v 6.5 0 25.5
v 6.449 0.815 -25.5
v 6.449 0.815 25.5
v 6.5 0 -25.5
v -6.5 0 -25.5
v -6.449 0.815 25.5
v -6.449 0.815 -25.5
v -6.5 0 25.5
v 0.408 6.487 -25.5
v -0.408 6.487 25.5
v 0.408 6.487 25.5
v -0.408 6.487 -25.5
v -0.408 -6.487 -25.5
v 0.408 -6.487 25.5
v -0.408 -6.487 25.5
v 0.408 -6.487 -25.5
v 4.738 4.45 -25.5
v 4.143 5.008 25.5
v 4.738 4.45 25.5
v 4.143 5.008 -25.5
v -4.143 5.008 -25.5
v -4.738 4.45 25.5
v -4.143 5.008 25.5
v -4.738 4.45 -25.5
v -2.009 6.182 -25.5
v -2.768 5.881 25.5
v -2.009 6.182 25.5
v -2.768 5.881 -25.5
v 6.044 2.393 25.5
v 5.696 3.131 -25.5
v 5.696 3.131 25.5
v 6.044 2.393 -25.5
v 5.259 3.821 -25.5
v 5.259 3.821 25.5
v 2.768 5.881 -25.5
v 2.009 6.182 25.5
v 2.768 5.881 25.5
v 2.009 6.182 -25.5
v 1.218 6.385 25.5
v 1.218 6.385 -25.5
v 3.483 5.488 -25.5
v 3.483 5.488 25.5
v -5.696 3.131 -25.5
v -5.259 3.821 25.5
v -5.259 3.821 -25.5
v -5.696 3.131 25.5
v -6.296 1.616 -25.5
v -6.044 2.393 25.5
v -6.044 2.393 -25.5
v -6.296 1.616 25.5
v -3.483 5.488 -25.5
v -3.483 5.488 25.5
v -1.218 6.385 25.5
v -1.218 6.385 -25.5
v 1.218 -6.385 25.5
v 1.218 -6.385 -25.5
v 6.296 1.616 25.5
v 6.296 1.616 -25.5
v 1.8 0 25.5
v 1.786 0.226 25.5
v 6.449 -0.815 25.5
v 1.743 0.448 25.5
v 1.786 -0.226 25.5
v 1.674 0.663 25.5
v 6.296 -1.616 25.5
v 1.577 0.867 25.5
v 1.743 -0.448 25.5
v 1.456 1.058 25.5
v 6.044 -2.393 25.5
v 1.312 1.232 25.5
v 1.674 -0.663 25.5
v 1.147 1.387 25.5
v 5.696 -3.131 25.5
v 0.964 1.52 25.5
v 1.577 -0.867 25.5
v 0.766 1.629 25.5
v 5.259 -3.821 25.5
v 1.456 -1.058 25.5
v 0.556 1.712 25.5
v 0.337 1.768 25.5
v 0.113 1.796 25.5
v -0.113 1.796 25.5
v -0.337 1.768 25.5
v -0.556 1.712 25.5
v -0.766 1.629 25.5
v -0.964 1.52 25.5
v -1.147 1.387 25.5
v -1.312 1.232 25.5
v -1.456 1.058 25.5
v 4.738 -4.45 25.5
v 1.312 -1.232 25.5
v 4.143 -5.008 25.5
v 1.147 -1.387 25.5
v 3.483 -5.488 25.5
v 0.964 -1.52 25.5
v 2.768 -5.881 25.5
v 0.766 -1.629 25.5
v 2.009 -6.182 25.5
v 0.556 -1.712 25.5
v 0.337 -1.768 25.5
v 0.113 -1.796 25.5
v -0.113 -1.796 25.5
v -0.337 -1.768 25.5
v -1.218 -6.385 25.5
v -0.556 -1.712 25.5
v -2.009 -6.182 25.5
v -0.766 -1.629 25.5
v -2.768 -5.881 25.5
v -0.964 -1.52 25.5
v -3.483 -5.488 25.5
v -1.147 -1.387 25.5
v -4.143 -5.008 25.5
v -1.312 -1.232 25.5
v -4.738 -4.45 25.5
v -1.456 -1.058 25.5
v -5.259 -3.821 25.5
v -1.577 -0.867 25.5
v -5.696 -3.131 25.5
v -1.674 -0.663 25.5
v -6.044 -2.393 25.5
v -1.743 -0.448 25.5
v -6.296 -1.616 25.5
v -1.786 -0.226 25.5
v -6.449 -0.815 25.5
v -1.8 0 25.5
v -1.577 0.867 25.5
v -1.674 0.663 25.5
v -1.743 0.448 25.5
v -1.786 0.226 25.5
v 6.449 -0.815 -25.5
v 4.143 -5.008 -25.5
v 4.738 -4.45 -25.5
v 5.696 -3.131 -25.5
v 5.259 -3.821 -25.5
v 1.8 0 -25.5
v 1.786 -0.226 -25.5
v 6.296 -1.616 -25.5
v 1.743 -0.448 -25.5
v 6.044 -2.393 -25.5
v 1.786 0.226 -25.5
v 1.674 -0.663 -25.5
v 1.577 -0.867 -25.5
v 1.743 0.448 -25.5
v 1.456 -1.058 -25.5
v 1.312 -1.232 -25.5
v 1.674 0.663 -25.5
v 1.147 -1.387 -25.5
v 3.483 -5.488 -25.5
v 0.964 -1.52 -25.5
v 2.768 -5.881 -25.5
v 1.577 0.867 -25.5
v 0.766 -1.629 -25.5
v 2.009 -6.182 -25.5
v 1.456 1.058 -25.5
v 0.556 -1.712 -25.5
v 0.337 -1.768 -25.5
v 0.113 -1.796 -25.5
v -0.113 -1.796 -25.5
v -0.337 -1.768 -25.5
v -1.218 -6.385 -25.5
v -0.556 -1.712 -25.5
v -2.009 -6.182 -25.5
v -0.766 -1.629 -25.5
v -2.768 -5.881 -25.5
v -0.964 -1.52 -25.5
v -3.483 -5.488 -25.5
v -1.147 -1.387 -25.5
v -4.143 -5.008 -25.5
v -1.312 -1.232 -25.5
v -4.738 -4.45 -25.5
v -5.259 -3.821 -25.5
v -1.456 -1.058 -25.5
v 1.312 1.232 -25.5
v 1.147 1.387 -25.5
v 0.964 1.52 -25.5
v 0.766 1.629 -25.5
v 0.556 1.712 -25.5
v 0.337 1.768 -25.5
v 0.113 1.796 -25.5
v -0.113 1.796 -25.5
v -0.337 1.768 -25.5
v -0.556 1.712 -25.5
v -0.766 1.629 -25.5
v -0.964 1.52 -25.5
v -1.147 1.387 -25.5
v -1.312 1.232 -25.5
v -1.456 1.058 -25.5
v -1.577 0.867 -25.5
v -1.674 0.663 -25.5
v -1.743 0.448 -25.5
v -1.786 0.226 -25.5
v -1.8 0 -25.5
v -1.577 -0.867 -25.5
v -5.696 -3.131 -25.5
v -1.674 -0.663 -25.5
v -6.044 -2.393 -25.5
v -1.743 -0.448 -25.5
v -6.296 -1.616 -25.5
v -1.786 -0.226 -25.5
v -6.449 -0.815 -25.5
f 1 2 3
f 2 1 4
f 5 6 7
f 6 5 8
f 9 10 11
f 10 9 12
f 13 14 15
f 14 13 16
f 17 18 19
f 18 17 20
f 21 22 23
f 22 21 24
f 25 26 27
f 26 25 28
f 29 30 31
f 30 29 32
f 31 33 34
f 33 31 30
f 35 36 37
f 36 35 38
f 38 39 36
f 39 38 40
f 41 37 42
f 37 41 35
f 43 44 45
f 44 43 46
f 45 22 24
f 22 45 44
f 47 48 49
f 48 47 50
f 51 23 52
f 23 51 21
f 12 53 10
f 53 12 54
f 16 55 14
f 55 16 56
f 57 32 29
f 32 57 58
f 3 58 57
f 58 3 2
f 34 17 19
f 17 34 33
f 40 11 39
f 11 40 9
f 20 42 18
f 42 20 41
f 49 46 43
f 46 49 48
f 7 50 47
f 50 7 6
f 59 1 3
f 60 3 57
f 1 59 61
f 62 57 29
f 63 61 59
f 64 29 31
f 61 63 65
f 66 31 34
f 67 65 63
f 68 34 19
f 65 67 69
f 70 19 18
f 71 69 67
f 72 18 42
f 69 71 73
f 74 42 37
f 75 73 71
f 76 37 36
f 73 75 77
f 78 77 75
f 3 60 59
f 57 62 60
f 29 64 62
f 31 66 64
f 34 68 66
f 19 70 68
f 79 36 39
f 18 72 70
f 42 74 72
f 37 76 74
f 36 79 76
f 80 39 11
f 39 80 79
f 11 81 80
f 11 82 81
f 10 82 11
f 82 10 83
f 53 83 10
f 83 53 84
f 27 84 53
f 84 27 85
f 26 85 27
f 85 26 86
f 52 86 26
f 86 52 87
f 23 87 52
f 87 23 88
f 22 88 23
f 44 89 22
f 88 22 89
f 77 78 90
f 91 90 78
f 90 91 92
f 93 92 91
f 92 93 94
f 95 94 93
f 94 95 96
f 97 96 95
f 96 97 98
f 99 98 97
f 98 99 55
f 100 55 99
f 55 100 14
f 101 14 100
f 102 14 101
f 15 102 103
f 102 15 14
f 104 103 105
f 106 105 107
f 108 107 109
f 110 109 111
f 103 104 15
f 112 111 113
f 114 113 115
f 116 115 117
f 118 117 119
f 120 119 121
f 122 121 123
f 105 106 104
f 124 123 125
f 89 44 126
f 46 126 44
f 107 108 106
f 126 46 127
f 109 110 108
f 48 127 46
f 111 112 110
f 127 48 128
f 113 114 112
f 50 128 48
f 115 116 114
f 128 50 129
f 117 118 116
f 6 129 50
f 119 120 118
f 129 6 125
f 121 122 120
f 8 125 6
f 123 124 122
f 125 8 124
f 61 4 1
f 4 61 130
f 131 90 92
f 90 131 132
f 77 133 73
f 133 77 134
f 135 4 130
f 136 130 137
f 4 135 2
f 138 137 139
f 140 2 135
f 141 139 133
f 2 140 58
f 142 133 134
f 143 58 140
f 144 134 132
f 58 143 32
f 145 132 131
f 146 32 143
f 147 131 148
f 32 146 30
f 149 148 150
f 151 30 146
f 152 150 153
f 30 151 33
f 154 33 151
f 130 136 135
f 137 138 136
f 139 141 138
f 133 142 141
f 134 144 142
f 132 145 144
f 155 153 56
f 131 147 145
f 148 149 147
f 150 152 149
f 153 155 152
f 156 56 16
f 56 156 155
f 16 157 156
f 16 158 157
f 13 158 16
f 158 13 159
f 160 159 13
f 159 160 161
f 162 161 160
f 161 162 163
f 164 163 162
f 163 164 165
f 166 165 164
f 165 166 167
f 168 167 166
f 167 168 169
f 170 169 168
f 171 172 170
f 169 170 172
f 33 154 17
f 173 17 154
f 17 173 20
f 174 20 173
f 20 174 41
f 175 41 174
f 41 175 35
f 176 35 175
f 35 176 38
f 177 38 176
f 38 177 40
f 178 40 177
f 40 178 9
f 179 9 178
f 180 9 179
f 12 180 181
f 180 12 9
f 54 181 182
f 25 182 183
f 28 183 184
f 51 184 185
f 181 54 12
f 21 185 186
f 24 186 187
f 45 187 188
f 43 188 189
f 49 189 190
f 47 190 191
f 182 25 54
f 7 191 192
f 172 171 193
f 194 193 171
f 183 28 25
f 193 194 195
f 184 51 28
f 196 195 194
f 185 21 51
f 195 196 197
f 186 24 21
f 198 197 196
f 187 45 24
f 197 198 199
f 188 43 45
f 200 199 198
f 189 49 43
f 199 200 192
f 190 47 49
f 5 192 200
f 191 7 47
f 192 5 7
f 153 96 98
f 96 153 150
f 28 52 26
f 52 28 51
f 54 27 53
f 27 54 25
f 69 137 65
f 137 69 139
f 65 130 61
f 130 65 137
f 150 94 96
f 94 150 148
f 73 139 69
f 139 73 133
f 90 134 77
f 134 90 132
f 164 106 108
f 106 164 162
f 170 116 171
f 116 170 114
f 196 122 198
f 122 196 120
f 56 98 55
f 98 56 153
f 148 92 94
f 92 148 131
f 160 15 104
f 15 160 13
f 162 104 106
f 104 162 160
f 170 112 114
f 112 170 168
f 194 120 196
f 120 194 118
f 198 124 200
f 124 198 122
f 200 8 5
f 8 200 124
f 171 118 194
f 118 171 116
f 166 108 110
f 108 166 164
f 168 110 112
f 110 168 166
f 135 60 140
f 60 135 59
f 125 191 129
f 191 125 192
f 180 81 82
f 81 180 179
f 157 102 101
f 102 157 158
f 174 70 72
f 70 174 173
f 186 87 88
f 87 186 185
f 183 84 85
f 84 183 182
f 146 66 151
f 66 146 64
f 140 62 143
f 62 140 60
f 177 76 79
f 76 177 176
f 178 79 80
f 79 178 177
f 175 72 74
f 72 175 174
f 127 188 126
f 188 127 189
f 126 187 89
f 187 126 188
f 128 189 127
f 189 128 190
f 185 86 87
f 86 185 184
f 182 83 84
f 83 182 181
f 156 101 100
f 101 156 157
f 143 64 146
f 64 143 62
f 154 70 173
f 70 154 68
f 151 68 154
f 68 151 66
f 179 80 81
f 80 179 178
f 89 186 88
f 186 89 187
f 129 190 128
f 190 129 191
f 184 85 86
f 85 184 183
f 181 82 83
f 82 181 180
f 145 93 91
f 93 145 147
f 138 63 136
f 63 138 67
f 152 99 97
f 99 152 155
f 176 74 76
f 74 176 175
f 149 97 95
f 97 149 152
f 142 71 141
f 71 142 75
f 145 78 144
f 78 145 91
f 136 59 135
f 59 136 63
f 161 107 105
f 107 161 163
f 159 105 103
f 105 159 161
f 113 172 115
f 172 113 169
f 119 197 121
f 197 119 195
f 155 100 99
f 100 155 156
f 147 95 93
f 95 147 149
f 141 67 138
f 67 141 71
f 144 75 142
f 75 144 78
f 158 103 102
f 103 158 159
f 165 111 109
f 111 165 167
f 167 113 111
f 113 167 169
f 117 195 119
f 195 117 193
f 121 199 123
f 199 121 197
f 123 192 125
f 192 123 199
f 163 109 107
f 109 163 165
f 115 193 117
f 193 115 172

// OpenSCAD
$fn = 50;


difference() {
	union() {
		translate(v = [0, 0, -25.5000000000]) {
			cylinder(h = 51, r = 6.5000000000);
		}
	}
	union() {
		translate(v = [0, 0, -100.0000000000]) {
			cylinder(h = 200, r = 1.8000000000);
		}
	}
}
